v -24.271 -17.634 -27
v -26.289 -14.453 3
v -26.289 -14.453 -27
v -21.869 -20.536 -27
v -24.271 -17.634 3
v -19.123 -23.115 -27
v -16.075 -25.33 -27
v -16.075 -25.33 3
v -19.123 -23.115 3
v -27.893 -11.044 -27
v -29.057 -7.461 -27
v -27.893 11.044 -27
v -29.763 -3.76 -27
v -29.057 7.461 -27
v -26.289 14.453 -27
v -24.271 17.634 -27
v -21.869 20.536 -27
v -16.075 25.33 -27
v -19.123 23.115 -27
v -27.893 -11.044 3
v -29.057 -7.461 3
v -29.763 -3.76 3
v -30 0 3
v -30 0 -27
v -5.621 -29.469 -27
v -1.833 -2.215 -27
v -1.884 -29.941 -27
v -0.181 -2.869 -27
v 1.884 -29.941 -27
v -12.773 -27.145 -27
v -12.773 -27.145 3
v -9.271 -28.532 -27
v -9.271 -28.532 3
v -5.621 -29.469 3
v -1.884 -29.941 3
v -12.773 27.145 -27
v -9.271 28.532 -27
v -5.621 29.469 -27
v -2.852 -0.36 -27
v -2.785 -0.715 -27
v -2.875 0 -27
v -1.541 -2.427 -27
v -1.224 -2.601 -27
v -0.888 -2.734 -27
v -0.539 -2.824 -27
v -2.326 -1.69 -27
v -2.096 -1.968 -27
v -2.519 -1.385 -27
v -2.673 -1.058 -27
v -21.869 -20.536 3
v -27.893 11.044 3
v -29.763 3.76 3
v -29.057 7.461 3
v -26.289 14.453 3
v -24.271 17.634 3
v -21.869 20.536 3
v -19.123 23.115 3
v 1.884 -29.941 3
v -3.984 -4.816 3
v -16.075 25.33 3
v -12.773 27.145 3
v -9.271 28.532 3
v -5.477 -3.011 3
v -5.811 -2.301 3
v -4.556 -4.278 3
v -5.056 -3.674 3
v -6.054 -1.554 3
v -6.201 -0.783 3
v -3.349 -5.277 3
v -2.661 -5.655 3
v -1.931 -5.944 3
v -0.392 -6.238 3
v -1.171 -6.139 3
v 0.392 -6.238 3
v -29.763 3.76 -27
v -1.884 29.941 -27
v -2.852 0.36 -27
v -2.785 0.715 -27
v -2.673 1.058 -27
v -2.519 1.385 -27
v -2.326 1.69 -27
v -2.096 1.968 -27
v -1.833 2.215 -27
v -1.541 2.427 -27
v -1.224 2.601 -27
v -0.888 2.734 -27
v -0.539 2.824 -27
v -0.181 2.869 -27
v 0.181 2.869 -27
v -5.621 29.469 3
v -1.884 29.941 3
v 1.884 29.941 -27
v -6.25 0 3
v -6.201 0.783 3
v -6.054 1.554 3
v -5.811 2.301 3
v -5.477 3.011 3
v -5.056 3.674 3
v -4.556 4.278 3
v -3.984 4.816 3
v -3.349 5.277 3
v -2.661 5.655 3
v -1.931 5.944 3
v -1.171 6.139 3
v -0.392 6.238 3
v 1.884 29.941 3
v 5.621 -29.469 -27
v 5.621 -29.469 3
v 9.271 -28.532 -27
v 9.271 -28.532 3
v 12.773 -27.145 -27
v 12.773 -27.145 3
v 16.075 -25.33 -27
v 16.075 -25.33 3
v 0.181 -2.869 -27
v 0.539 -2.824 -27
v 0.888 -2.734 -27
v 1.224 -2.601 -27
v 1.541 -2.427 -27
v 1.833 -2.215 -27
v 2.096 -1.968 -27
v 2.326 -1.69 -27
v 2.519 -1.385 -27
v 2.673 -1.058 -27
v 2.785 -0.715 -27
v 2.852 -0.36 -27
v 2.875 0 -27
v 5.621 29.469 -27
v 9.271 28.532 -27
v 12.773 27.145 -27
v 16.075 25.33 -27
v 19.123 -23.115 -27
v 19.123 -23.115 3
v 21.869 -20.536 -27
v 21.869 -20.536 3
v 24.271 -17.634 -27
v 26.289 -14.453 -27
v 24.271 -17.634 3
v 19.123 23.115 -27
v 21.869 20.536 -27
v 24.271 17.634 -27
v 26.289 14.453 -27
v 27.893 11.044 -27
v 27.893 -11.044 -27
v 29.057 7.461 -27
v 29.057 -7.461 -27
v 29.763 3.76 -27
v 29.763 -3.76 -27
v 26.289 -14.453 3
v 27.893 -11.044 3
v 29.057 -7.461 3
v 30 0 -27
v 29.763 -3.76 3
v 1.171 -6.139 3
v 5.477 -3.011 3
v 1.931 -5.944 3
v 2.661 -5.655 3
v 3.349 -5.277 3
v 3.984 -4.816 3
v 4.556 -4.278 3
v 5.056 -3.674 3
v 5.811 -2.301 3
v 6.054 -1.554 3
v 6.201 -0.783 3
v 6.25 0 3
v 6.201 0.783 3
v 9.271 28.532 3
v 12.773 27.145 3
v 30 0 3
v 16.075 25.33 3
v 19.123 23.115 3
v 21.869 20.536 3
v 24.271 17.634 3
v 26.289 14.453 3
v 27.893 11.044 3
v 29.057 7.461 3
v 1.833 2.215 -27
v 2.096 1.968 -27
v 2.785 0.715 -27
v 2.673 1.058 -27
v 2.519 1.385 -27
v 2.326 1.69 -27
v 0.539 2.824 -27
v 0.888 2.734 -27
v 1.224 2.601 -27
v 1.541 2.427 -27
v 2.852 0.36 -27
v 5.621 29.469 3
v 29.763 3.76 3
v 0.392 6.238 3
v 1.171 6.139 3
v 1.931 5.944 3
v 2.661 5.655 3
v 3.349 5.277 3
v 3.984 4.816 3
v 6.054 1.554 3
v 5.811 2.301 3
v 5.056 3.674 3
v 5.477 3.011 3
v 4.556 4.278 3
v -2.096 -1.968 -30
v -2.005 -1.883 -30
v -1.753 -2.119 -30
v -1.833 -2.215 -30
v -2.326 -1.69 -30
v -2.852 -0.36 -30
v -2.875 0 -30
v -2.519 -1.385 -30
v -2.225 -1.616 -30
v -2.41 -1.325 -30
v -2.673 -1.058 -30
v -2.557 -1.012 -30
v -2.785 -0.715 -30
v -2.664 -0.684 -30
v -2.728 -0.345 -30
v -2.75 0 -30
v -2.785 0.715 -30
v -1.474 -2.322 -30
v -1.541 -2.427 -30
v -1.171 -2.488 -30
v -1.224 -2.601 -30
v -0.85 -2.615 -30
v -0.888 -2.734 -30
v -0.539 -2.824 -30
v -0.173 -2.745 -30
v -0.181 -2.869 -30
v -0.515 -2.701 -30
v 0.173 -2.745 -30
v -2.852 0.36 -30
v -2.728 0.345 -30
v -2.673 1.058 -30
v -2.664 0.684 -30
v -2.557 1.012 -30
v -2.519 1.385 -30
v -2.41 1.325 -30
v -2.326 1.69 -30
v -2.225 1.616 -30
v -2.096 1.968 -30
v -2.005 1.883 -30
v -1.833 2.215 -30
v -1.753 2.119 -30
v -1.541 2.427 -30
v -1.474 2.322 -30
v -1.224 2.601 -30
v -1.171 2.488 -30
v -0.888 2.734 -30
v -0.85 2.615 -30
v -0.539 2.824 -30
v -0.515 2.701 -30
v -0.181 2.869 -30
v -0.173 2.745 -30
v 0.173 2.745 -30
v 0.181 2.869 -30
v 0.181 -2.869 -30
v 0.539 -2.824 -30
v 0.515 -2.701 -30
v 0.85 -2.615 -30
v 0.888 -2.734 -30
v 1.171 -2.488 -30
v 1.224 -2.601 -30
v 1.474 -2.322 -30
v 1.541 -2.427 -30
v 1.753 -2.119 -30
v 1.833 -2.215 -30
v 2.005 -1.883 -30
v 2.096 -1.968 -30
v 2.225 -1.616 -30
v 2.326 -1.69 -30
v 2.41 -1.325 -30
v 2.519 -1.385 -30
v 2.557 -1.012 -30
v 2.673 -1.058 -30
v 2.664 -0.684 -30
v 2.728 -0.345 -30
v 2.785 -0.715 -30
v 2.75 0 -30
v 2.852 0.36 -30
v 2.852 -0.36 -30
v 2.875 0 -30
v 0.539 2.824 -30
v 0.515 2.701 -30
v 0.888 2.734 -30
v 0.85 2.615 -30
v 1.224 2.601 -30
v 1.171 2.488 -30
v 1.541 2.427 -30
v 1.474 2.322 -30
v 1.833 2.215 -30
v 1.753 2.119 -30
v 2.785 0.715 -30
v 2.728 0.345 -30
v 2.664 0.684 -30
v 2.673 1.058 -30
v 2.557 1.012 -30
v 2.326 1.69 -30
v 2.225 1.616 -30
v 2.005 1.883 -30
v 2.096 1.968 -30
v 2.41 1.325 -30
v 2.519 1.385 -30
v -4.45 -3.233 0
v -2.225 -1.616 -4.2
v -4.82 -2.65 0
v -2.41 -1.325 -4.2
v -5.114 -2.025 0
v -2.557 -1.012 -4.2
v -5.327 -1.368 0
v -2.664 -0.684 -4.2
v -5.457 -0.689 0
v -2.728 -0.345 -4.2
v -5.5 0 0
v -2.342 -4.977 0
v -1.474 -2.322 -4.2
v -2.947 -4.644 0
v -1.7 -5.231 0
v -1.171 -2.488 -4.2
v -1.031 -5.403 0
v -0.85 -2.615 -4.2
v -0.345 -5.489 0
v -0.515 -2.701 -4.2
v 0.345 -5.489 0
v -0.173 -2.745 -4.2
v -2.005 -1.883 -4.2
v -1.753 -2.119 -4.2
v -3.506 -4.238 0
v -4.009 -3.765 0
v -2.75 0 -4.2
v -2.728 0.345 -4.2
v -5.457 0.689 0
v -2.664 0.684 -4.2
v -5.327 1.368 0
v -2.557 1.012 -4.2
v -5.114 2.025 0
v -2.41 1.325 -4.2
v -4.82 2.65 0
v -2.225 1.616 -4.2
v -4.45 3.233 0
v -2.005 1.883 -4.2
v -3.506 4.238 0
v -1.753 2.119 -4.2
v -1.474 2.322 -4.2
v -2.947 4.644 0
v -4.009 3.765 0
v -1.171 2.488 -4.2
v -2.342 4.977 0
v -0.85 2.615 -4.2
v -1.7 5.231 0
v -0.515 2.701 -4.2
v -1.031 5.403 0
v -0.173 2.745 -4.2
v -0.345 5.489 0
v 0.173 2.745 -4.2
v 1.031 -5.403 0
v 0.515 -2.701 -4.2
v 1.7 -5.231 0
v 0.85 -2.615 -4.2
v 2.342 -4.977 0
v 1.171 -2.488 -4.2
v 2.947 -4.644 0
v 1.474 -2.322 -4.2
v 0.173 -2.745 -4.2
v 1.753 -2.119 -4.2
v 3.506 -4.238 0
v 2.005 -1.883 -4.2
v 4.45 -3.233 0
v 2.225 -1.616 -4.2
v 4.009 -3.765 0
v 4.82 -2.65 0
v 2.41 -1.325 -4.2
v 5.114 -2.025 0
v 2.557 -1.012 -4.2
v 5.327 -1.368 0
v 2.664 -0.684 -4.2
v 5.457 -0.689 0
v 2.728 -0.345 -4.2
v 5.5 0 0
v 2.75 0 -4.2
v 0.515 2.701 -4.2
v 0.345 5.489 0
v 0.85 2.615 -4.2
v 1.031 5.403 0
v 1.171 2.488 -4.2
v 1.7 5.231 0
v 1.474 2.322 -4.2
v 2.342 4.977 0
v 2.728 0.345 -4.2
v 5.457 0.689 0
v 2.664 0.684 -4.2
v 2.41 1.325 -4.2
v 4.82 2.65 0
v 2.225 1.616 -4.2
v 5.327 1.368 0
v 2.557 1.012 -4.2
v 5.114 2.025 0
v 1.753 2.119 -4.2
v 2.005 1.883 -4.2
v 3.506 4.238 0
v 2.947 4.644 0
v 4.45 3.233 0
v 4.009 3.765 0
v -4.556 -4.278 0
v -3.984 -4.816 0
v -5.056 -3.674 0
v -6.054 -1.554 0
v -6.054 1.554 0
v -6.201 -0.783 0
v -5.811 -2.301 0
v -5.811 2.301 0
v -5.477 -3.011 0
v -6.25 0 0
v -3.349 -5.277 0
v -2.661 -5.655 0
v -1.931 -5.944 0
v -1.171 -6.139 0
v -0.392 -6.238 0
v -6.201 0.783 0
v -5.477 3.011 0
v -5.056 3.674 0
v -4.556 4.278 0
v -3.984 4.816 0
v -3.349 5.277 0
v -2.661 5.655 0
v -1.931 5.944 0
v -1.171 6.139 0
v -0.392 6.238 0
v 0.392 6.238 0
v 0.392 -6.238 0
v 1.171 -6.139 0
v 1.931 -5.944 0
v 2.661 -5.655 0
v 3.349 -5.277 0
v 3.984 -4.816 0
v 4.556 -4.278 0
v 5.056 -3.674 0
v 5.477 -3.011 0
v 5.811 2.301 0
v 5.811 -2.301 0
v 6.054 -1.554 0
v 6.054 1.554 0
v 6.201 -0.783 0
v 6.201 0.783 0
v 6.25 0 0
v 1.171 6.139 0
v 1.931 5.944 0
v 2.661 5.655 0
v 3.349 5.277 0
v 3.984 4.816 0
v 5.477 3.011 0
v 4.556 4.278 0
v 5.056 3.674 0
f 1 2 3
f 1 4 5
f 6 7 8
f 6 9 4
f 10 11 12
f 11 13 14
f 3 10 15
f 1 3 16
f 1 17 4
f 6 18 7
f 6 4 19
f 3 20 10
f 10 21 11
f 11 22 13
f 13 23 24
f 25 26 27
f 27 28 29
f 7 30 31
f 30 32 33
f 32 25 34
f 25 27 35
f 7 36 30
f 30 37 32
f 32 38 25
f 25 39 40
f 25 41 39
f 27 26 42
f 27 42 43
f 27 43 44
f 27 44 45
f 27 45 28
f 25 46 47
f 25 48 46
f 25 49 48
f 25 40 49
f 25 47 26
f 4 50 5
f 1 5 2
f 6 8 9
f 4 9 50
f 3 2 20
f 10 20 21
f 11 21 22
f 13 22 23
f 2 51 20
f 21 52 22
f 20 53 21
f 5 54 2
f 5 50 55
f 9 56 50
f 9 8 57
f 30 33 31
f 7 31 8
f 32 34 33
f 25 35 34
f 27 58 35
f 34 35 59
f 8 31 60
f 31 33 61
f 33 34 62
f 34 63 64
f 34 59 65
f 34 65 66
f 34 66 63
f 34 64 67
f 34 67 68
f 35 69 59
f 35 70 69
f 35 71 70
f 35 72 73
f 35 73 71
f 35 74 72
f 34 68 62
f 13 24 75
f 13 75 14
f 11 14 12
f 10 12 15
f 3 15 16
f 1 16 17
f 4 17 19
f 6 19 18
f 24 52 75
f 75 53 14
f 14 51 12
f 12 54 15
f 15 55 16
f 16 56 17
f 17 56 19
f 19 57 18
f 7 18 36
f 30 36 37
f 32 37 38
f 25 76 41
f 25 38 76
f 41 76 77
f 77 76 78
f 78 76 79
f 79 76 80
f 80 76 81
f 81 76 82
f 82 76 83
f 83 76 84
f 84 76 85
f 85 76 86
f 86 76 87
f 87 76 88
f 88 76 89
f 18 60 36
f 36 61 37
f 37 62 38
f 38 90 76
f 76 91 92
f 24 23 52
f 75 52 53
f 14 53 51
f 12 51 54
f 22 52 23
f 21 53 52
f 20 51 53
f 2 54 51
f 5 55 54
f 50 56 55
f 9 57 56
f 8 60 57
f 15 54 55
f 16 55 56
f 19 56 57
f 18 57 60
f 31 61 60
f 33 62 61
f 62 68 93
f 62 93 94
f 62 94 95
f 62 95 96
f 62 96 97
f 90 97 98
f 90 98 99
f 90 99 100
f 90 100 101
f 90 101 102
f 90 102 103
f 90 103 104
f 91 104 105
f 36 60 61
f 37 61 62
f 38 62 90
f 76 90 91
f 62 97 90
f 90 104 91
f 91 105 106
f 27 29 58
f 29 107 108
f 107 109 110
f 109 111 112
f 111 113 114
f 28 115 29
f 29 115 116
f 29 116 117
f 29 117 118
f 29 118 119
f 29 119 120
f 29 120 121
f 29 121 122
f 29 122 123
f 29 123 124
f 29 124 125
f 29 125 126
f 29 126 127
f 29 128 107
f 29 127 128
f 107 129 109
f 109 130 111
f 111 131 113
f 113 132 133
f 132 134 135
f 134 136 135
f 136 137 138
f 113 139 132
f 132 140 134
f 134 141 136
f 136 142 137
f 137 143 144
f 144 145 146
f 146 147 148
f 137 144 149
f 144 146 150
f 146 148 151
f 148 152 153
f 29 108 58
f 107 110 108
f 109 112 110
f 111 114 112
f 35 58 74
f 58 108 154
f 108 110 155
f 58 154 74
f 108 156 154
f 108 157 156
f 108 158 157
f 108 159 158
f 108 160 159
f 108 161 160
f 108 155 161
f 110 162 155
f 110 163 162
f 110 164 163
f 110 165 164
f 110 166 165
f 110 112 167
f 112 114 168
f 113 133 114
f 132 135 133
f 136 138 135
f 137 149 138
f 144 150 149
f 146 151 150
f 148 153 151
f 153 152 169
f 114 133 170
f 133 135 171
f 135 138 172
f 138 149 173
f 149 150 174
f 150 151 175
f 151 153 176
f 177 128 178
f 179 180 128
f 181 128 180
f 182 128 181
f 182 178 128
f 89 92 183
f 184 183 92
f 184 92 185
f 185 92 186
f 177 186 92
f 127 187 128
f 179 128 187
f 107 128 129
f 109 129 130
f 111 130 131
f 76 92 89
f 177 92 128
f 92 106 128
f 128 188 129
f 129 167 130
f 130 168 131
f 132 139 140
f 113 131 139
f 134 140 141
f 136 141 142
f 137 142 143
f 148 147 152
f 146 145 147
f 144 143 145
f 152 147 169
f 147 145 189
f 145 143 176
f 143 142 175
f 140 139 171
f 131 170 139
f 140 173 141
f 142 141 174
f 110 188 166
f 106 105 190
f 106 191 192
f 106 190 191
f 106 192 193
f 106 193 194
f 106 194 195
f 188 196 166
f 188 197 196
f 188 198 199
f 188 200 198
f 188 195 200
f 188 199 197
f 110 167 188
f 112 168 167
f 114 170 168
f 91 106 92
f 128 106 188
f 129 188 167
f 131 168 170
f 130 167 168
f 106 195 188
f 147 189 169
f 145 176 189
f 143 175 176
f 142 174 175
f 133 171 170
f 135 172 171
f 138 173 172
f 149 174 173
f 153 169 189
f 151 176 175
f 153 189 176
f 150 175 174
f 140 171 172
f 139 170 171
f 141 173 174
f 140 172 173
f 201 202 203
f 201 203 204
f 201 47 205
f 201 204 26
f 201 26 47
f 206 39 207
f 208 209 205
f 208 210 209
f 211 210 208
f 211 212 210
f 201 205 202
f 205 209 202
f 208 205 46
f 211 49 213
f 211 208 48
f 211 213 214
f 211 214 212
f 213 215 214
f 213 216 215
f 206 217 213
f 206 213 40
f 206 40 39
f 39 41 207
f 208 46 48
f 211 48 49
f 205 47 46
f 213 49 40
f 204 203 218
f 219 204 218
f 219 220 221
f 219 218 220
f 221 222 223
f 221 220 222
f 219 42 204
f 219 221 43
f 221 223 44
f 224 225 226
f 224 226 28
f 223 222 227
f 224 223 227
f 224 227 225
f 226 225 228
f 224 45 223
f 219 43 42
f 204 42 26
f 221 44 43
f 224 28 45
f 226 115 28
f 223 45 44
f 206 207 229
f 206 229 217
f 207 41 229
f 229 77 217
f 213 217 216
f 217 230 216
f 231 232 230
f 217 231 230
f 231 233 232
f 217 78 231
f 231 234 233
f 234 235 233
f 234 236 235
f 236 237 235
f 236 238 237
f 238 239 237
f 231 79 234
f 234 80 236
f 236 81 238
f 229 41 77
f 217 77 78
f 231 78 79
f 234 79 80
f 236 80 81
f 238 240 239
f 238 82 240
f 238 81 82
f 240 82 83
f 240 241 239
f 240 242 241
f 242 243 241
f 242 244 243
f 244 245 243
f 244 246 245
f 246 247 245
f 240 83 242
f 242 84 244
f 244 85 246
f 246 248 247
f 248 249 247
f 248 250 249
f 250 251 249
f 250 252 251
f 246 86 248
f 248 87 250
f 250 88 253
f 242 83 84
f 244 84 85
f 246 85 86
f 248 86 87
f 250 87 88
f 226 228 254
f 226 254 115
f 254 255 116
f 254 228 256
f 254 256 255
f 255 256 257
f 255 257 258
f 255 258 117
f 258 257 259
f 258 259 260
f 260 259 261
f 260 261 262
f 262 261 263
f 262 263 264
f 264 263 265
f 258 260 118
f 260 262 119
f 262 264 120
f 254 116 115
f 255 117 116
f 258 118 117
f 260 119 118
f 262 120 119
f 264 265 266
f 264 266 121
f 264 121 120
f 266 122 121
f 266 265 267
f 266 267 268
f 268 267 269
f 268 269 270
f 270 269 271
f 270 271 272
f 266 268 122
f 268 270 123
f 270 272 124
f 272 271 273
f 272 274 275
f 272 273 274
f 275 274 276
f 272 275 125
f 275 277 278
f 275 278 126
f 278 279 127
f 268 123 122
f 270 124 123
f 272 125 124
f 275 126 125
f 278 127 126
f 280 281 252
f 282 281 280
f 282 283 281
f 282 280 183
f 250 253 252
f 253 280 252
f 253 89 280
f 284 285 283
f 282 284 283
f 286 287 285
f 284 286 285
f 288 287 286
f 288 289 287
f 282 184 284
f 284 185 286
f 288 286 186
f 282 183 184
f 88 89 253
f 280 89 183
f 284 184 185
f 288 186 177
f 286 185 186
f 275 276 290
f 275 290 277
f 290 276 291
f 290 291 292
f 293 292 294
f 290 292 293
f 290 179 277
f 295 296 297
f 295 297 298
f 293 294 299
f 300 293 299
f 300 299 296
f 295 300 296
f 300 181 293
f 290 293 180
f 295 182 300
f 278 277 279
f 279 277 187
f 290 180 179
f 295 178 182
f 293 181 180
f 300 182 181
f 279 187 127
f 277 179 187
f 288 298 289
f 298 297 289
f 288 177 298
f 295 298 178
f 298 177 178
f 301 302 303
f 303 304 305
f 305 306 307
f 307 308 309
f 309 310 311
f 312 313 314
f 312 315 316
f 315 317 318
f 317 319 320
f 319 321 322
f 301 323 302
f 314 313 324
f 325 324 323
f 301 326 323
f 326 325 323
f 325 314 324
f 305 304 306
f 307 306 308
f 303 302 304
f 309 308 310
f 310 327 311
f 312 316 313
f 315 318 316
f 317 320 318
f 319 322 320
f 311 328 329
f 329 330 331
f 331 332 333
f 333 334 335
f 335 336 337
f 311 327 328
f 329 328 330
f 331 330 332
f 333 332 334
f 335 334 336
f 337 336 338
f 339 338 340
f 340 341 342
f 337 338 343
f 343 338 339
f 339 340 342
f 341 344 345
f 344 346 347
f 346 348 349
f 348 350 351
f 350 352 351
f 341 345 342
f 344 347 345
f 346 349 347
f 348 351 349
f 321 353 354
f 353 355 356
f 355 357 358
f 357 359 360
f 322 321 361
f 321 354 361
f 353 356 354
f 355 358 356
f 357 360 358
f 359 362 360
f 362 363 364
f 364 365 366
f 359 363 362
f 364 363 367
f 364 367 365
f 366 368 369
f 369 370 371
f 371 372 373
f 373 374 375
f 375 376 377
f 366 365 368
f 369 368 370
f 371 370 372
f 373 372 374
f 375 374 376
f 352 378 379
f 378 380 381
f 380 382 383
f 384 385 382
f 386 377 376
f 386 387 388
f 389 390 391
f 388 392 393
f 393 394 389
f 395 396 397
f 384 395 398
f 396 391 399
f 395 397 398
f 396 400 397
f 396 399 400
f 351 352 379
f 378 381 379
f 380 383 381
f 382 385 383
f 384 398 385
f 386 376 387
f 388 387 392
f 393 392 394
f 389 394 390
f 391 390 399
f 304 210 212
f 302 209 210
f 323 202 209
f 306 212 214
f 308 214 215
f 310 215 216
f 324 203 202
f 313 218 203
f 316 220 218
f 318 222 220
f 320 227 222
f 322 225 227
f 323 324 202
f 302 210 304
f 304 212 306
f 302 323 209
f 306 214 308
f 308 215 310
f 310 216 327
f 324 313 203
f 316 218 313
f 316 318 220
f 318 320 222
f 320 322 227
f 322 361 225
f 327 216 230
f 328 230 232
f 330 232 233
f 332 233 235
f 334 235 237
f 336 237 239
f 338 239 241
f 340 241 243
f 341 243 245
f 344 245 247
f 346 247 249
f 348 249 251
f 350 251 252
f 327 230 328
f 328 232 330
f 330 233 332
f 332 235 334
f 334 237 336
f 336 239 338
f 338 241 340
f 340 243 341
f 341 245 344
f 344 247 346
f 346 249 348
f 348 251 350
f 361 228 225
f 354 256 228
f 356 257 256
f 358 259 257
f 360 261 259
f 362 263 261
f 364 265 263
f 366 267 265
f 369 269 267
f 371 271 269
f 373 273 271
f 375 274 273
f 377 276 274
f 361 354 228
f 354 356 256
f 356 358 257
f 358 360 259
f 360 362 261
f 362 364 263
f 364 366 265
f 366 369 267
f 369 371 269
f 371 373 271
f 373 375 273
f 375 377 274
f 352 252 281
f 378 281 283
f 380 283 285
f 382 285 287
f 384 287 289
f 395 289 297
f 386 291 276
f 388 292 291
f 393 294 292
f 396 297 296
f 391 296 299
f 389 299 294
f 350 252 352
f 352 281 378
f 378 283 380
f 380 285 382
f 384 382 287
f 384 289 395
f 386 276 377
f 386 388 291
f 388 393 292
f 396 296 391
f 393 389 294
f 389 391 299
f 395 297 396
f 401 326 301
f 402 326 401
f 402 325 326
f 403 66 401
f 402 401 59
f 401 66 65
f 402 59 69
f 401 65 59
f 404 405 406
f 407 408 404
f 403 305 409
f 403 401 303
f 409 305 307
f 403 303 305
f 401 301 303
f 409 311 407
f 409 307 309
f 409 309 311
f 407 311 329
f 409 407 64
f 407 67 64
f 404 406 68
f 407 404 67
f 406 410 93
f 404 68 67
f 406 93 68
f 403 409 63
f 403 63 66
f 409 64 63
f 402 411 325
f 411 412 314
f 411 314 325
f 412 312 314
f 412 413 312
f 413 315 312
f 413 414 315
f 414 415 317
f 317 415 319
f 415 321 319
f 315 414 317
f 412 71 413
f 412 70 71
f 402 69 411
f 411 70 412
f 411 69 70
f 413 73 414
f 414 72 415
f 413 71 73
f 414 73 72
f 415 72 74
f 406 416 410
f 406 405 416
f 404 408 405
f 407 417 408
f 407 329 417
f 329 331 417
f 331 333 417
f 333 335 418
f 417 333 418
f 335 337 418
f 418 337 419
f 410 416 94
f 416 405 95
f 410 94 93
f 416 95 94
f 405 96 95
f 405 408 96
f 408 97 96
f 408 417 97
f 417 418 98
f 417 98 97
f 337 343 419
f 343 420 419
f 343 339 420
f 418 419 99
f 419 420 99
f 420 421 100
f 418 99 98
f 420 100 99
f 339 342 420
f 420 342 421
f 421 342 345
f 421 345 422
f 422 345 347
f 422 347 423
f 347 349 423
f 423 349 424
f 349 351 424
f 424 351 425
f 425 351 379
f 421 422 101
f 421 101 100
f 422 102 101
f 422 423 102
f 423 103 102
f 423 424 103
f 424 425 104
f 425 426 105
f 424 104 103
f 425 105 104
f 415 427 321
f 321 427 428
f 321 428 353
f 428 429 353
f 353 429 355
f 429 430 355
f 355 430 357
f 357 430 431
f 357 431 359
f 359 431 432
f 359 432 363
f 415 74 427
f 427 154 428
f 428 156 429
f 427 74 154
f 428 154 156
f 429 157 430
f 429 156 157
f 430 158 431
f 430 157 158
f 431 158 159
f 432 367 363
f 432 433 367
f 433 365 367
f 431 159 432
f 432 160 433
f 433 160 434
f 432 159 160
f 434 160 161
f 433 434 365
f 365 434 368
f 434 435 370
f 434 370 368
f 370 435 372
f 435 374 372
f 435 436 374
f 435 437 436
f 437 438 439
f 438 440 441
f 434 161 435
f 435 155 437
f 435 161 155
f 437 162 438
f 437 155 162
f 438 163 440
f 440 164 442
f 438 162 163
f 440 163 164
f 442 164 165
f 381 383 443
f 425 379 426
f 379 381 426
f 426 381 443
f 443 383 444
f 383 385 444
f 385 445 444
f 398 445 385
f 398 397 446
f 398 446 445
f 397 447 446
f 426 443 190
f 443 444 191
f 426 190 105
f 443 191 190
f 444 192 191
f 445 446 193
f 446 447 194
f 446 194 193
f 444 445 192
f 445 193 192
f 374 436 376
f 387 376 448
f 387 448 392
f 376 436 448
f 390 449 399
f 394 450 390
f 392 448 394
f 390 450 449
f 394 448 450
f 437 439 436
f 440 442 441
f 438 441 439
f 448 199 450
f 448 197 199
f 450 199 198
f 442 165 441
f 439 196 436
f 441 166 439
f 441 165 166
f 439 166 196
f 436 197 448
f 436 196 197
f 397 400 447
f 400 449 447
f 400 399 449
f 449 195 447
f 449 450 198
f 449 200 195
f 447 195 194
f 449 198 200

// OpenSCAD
$fn = 50;

difference() {
	union() {
		translate(v = [0, 0, -27.0]) {
			cylinder(h = 30, r = 30.0);
		}
		#translate(v = [0, 0, -30.0]) {
			cylinder(h = 30, r = 2.875);
		}
	}
	union() {
		translate(v = [0, 0, 0]) {
			rotate(a = [0, 0, 0]) {
				difference() {
					union() {
						translate(v = [0, 0, -30.0]) {
							cylinder(h = 30, r = 2.25);
						}
						translate(v = [0, 0, -4.2]) {
							cylinder(h = 4.2, r1 = 2.75, r2 = 5.5);
						}
						translate(v = [0, 0, -30.0]) {
							cylinder(h = 30, r = 2.75);
						}
						translate(v = [0, 0, -30.0]) {
							cylinder(h = 30, r = 2.25);
						}
					}
					union();
				}
			}
		}
		#cylinder(h = 3, r = 6.25);
	}
}
